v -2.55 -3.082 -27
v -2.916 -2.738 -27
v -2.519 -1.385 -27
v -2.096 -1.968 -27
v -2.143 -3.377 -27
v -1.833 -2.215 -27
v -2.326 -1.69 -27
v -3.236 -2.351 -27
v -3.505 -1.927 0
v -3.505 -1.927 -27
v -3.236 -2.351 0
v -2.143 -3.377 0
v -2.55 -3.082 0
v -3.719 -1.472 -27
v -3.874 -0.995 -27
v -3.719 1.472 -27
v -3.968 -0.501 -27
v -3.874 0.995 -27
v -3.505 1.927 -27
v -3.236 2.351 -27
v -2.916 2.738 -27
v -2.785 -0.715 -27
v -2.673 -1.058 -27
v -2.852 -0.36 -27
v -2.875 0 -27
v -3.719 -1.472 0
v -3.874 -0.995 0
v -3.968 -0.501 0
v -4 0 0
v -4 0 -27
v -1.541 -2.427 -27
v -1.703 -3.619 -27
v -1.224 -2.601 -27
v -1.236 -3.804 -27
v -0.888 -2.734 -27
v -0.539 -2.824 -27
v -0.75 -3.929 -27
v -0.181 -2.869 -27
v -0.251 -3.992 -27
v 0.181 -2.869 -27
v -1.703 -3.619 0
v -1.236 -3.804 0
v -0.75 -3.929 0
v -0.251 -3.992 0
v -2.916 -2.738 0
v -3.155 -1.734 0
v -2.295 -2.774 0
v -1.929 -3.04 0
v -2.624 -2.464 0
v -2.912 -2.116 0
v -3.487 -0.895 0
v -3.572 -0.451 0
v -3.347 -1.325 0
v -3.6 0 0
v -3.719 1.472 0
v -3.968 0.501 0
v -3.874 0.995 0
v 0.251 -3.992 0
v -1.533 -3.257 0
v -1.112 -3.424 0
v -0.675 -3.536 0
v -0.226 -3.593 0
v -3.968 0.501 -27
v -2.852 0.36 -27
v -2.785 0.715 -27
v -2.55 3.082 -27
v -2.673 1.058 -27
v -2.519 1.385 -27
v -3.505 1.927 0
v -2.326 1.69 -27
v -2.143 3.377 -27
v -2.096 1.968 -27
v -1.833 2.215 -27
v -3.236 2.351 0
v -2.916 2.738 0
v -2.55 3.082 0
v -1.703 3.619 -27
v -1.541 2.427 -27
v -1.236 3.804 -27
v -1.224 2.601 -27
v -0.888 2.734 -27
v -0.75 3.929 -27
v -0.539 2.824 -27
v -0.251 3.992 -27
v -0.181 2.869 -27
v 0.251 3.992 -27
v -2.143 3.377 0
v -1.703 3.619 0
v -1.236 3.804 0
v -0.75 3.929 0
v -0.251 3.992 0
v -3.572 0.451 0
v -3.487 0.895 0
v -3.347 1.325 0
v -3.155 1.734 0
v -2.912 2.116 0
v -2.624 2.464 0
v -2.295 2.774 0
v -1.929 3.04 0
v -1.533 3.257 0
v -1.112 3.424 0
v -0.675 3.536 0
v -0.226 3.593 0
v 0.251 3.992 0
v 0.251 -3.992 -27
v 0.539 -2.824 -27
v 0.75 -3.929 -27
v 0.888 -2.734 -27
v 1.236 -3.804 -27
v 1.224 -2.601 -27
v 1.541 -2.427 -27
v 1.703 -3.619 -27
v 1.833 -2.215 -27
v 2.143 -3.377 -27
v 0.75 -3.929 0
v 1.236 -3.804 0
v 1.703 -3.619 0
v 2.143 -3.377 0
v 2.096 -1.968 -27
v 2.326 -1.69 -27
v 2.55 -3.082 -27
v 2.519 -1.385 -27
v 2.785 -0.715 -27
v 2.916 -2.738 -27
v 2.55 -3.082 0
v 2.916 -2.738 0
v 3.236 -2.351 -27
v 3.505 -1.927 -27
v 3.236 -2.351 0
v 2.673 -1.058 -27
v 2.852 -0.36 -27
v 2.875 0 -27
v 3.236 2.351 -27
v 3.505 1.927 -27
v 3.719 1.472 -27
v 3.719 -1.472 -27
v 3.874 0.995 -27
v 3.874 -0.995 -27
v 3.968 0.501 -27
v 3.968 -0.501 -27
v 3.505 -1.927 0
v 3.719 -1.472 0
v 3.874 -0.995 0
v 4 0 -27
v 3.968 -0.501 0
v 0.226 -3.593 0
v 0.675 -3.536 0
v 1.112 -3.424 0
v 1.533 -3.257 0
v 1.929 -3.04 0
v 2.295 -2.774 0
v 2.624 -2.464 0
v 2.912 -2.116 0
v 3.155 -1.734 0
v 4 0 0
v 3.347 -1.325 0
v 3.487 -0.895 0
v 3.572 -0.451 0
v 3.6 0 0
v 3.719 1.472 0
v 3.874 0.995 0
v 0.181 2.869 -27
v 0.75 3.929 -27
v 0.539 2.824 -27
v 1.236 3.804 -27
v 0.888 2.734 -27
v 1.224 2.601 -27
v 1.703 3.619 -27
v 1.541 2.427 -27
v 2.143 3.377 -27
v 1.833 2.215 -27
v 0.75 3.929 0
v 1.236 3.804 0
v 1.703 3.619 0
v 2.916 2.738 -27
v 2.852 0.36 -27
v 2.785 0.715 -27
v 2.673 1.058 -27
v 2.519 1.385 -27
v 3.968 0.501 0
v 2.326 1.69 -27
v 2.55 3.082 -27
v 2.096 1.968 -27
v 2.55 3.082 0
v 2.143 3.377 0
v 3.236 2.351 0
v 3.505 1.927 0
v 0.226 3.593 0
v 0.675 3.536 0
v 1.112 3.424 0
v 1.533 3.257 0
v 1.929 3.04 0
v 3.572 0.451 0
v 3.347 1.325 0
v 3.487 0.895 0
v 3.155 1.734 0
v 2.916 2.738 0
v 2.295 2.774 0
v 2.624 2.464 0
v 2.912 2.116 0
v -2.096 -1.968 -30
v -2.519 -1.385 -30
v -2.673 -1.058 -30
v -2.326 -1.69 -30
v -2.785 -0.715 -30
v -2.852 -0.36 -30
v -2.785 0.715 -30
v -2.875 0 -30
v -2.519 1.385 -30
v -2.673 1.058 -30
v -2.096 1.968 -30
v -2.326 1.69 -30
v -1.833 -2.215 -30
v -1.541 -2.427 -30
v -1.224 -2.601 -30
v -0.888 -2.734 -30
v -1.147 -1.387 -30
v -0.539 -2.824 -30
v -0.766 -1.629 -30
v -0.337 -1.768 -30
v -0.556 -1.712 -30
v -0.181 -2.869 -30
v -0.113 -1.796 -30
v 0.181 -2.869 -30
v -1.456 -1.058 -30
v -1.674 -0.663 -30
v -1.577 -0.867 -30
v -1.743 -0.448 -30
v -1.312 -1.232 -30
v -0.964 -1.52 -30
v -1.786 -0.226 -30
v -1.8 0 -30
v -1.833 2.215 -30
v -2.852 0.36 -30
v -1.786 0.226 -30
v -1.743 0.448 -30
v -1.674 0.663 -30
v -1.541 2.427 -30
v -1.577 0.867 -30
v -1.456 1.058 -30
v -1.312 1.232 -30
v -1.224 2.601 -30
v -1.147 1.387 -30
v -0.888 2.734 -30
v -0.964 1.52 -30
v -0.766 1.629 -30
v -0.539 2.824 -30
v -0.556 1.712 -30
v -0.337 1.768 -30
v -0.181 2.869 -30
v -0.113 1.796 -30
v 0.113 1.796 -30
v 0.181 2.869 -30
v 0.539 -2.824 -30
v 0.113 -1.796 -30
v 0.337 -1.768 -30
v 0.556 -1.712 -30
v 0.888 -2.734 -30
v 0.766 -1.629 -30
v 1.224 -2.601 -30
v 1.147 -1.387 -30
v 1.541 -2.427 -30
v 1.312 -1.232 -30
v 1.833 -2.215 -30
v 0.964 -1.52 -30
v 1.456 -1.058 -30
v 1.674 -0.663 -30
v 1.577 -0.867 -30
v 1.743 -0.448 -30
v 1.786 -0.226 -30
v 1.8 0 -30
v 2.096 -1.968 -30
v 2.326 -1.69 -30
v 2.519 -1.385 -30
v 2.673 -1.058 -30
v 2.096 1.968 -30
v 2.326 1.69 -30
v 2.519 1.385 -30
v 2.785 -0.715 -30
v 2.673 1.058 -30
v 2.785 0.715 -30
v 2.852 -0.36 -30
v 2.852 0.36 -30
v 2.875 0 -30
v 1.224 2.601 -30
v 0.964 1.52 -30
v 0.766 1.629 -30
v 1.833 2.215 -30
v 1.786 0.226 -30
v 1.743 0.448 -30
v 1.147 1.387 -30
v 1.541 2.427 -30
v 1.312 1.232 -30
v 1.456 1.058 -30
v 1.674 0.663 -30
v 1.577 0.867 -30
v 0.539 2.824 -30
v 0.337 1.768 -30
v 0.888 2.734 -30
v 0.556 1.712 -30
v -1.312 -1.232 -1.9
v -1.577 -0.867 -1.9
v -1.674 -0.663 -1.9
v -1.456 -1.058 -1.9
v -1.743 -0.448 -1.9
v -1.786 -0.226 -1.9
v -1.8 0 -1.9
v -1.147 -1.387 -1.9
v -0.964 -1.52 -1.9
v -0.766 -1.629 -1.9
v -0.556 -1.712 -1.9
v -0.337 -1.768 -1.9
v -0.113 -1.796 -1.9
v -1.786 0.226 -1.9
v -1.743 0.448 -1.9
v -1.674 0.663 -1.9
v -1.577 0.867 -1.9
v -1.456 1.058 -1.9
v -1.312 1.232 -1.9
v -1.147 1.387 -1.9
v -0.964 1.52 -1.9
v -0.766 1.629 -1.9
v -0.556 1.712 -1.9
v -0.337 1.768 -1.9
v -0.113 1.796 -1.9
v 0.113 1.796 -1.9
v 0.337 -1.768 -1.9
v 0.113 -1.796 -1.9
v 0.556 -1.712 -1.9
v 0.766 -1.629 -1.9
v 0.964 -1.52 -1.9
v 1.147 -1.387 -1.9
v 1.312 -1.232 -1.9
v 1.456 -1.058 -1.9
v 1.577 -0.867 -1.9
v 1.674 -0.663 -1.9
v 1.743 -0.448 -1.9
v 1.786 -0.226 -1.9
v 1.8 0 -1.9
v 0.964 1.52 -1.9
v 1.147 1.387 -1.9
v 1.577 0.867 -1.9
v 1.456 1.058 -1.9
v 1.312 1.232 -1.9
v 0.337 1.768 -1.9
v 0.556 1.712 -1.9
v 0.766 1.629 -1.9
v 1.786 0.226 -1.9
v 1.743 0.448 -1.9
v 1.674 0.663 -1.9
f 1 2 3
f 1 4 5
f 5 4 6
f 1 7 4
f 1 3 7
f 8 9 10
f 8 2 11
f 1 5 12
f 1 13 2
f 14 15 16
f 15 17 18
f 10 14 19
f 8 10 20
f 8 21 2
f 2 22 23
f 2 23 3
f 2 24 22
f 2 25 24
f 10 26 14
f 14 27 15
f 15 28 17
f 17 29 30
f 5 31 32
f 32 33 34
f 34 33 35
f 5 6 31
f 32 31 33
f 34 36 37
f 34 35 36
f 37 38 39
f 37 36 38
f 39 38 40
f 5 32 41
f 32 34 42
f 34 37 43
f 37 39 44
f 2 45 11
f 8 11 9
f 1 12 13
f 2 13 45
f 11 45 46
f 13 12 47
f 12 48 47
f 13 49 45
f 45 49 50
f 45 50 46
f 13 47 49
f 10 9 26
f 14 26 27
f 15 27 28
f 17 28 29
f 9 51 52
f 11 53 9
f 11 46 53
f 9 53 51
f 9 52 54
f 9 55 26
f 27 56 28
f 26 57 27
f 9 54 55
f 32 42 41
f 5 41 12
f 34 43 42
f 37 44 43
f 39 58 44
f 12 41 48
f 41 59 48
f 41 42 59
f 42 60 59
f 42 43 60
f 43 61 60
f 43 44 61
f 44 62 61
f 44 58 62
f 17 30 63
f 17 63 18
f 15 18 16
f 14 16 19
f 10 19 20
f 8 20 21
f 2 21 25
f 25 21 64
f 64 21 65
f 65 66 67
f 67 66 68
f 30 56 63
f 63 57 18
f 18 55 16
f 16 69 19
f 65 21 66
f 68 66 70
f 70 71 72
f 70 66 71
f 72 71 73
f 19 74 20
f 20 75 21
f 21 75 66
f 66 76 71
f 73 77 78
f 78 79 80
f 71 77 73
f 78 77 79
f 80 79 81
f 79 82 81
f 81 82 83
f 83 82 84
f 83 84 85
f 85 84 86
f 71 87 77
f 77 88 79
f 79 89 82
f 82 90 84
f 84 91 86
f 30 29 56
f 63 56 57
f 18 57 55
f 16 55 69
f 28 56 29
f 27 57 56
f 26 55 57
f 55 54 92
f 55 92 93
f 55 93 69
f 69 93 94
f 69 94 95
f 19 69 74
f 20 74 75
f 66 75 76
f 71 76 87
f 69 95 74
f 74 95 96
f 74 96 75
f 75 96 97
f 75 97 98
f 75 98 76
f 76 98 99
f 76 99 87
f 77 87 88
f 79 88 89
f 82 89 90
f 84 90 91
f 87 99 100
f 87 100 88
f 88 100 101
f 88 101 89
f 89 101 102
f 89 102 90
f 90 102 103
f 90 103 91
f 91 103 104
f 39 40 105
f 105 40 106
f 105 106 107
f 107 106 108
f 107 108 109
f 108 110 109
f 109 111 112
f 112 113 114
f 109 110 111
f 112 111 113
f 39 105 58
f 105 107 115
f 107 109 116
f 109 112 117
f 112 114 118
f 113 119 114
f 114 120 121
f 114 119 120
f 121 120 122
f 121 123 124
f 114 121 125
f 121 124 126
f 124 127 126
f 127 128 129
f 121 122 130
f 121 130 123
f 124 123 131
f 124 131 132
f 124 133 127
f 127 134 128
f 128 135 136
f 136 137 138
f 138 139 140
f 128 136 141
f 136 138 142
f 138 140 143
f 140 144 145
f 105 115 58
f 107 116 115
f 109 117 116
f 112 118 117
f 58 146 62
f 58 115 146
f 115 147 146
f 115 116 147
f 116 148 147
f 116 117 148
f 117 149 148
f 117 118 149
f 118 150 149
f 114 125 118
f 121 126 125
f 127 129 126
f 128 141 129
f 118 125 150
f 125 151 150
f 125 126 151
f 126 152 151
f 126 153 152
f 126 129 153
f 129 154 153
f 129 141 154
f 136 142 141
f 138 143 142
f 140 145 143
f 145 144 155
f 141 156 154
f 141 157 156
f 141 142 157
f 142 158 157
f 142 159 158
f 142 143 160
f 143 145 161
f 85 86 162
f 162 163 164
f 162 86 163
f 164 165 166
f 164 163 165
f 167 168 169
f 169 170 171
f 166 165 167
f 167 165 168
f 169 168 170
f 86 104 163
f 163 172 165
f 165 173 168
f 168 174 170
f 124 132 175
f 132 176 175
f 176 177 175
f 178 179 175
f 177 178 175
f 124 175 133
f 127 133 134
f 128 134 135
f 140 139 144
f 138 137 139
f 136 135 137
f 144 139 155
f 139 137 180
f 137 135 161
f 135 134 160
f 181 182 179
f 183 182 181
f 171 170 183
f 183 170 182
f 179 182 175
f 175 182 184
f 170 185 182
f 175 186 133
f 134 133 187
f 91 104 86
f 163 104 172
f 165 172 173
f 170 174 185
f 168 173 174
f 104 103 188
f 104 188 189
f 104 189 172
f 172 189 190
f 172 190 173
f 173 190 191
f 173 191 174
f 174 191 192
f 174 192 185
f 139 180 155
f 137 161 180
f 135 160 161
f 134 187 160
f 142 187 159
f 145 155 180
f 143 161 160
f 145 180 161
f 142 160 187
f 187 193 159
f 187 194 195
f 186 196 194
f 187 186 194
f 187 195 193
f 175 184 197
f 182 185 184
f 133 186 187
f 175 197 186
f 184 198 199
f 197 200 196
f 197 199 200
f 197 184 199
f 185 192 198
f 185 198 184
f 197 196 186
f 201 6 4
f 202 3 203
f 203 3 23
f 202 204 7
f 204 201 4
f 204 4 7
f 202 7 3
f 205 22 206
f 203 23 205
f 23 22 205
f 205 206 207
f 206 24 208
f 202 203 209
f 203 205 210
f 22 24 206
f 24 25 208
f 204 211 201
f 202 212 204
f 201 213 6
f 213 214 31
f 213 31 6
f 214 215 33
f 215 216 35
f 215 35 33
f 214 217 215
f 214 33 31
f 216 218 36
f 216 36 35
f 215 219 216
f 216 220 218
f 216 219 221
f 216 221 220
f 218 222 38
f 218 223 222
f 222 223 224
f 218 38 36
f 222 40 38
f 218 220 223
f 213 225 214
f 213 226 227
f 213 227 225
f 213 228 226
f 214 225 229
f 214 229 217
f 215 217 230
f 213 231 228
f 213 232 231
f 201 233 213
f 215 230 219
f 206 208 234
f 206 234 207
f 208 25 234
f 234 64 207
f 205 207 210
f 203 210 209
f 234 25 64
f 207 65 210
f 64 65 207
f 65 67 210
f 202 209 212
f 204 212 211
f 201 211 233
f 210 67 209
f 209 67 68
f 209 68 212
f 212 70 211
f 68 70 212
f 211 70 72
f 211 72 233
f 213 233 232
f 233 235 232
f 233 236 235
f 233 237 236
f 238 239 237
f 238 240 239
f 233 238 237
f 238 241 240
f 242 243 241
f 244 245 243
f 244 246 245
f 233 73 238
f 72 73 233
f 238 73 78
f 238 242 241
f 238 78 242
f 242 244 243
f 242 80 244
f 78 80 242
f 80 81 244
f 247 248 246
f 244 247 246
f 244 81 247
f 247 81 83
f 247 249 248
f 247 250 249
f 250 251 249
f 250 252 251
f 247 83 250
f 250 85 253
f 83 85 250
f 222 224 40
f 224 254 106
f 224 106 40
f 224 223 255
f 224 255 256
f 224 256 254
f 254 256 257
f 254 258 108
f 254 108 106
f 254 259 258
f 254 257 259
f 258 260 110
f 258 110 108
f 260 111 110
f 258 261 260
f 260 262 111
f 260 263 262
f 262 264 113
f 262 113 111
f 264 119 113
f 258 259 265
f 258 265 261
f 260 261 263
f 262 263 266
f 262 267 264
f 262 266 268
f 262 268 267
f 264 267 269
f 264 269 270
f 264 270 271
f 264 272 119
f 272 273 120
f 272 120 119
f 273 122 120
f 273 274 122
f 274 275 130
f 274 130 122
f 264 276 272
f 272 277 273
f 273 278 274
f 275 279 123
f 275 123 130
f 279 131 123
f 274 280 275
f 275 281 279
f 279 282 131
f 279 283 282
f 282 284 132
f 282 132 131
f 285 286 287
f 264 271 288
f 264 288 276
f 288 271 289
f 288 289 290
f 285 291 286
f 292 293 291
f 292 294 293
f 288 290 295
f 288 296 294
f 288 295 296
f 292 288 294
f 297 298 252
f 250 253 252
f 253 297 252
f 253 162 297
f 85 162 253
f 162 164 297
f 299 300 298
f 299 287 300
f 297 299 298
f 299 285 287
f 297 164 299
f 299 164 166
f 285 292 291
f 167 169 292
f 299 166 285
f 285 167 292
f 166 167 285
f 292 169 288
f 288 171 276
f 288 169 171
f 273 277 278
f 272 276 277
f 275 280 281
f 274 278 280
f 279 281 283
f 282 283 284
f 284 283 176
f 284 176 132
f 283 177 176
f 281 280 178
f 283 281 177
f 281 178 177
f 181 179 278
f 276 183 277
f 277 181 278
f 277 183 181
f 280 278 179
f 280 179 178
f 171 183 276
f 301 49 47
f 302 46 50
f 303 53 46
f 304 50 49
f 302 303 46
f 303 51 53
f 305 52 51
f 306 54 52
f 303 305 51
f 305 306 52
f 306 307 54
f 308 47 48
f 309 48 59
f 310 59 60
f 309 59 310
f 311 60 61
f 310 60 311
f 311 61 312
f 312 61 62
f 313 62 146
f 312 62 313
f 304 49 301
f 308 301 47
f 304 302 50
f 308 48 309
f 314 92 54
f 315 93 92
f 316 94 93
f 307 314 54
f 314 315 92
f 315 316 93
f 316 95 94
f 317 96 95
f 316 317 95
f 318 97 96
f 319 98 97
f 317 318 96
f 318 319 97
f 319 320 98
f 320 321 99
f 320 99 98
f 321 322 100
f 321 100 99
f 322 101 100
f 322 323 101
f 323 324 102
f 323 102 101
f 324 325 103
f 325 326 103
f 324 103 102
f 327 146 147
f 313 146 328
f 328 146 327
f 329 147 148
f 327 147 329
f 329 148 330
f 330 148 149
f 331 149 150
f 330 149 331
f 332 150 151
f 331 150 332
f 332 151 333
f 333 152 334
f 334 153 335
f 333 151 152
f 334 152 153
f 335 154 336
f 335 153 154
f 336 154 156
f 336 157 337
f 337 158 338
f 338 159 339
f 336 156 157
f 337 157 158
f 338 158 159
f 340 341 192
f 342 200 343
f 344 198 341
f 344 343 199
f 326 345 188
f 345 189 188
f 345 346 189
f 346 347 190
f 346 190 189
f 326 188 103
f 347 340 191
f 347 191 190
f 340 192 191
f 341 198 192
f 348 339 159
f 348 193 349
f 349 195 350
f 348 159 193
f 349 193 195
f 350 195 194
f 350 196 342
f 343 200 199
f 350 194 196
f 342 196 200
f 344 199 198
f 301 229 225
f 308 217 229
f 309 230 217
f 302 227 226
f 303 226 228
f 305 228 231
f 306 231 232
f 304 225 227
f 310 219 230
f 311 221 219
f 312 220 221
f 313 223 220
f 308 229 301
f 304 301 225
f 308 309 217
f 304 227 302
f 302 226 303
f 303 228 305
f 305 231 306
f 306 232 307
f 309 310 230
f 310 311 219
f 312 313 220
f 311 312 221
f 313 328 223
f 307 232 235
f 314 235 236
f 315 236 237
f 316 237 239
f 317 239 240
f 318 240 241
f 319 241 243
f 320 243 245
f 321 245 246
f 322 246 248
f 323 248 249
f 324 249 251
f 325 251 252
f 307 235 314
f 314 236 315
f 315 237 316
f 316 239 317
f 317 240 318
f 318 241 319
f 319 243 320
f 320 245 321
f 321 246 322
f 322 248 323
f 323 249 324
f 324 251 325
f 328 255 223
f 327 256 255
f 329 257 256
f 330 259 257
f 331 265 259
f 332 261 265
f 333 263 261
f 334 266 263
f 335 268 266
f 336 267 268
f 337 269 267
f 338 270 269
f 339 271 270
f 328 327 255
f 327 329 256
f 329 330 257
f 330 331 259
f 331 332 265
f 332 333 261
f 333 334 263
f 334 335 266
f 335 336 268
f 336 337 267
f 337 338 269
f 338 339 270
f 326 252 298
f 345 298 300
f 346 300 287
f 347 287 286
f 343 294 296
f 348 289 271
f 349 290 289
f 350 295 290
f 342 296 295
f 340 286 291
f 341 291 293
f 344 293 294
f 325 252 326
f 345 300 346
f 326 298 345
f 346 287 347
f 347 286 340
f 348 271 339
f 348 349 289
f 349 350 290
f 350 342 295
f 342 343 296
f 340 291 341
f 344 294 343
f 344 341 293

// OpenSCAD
$fn = 50;

difference() {
	union() {
		translate(v = [0, 0, -27.0]) {
			cylinder(h = 27, r = 4.0);
		}
		#translate(v = [0, 0, -30.0]) {
			cylinder(h = 30, r = 2.875);
		}
	}
	union() {
		translate(v = [0, 0, 0]) {
			rotate(a = [0, 0, 0]) {
				difference() {
					union() {
						translate(v = [0, 0, -30.0]) {
							cylinder(h = 30, r = 1.5);
						}
						translate(v = [0, 0, -1.9]) {
							cylinder(h = 1.9, r1 = 1.8, r2 = 3.6);
						}
						translate(v = [0, 0, -30.0]) {
							cylinder(h = 30, r = 1.8);
						}
						translate(v = [0, 0, -30.0]) {
							cylinder(h = 30, r = 1.5);
						}
					}
					union();
				}
			}
		}
	}
}
